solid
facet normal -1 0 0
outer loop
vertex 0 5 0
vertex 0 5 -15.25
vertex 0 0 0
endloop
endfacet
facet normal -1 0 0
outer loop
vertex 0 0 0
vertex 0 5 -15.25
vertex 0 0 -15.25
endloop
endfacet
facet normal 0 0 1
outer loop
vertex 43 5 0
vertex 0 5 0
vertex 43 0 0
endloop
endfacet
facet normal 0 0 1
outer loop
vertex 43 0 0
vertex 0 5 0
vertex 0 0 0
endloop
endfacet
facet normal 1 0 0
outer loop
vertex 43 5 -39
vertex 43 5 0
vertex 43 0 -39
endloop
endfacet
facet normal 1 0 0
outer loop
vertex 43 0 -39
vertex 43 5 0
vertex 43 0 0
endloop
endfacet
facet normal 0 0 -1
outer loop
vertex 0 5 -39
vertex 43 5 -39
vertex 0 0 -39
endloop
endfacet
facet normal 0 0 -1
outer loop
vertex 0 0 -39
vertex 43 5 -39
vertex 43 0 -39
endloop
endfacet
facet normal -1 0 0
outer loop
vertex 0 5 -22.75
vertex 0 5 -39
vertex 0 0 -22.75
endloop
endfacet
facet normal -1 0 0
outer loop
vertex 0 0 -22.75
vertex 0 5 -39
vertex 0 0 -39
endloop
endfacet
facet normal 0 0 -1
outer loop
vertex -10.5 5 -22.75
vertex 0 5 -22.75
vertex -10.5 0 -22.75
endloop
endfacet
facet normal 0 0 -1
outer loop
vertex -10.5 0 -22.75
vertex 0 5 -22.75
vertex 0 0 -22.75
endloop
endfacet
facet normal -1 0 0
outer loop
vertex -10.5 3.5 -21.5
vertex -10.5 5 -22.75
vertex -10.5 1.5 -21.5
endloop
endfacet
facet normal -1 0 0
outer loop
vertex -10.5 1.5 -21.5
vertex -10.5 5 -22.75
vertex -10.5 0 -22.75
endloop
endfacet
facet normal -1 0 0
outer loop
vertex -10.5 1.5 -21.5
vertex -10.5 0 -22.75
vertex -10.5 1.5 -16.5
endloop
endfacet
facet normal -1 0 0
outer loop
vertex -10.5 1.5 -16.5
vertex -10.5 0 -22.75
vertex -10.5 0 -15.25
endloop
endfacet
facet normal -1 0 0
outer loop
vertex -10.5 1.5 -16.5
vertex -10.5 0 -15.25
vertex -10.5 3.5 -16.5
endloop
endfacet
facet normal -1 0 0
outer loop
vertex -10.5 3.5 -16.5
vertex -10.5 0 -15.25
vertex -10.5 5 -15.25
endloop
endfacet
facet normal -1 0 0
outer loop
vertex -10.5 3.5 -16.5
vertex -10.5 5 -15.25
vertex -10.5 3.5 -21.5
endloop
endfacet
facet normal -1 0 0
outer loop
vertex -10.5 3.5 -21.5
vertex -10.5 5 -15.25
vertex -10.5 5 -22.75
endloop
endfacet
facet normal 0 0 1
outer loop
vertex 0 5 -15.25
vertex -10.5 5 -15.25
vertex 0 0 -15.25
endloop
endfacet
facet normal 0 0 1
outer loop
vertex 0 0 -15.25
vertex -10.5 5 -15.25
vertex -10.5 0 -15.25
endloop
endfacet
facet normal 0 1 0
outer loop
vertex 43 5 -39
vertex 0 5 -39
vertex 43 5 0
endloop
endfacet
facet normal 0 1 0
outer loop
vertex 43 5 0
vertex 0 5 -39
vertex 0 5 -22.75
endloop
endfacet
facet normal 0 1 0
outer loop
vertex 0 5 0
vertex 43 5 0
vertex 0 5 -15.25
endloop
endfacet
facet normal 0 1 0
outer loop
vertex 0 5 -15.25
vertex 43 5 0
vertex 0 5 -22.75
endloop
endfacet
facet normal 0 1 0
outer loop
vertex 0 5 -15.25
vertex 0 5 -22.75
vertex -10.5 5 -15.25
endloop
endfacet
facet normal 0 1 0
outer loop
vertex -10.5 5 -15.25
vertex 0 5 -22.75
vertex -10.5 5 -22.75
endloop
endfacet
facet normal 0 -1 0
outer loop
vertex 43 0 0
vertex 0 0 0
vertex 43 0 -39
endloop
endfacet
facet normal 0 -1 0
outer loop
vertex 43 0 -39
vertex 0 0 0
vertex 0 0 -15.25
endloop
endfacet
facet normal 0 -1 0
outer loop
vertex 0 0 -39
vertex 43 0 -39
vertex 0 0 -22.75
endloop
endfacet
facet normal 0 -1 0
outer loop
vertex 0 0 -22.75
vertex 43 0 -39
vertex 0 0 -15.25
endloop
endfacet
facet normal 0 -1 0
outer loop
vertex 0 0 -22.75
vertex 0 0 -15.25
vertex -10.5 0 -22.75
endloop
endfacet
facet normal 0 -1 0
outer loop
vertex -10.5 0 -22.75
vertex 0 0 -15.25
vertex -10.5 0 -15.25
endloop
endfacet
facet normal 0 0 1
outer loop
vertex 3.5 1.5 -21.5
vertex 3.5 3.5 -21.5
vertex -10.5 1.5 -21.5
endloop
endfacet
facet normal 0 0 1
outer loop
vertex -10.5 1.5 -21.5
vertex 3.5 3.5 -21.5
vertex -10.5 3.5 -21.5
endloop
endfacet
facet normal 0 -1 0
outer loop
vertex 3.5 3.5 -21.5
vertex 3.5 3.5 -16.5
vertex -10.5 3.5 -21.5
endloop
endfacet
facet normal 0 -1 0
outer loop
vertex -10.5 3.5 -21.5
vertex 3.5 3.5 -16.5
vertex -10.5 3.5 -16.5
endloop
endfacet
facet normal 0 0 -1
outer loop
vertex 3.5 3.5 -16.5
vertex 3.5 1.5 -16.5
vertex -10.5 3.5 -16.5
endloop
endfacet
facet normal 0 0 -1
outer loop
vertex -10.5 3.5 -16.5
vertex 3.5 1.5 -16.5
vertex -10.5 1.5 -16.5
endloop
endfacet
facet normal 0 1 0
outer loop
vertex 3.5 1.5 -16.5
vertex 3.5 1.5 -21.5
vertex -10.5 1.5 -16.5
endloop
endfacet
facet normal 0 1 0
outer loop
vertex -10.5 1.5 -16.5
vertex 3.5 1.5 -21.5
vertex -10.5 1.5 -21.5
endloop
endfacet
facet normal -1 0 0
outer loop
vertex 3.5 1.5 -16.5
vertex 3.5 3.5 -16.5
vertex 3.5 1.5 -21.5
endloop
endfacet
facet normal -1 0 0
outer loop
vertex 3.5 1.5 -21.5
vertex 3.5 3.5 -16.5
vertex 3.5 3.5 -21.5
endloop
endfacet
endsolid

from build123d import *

# Parameters (mm, degrees)
BOSS_EXTRUDE1_DEPTH = 5
SKETCH3_W           = 5
SKETCH3_H           = 2
CUT_EXTRUDE1_DEPTH  = 14


with BuildPart() as part:
    # Sketch1 → Boss-Extrude1 (new body)
    with BuildSketch(Plane(origin=(0, 0, 0), x_dir=(1, 0, 0), z_dir=(0, 1, 0))):
        Polygon((0, 22.75), (-10.5, 22.75), (-10.5, 15.25), (0, 15.25), (0, 0), (43, 0), (43, 39), (0, 39), align=None)
    extrude(amount=BOSS_EXTRUDE1_DEPTH)

    # Sketch3 → Cut-Extrude1 (cut)
    with BuildSketch(Plane.ZY.offset(10.5)):
        with Locations((-19, 2.5)):
            Rectangle(SKETCH3_W, SKETCH3_H)
    extrude(amount=-CUT_EXTRUDE1_DEPTH, mode=Mode.SUBTRACT)


solid = part.part
